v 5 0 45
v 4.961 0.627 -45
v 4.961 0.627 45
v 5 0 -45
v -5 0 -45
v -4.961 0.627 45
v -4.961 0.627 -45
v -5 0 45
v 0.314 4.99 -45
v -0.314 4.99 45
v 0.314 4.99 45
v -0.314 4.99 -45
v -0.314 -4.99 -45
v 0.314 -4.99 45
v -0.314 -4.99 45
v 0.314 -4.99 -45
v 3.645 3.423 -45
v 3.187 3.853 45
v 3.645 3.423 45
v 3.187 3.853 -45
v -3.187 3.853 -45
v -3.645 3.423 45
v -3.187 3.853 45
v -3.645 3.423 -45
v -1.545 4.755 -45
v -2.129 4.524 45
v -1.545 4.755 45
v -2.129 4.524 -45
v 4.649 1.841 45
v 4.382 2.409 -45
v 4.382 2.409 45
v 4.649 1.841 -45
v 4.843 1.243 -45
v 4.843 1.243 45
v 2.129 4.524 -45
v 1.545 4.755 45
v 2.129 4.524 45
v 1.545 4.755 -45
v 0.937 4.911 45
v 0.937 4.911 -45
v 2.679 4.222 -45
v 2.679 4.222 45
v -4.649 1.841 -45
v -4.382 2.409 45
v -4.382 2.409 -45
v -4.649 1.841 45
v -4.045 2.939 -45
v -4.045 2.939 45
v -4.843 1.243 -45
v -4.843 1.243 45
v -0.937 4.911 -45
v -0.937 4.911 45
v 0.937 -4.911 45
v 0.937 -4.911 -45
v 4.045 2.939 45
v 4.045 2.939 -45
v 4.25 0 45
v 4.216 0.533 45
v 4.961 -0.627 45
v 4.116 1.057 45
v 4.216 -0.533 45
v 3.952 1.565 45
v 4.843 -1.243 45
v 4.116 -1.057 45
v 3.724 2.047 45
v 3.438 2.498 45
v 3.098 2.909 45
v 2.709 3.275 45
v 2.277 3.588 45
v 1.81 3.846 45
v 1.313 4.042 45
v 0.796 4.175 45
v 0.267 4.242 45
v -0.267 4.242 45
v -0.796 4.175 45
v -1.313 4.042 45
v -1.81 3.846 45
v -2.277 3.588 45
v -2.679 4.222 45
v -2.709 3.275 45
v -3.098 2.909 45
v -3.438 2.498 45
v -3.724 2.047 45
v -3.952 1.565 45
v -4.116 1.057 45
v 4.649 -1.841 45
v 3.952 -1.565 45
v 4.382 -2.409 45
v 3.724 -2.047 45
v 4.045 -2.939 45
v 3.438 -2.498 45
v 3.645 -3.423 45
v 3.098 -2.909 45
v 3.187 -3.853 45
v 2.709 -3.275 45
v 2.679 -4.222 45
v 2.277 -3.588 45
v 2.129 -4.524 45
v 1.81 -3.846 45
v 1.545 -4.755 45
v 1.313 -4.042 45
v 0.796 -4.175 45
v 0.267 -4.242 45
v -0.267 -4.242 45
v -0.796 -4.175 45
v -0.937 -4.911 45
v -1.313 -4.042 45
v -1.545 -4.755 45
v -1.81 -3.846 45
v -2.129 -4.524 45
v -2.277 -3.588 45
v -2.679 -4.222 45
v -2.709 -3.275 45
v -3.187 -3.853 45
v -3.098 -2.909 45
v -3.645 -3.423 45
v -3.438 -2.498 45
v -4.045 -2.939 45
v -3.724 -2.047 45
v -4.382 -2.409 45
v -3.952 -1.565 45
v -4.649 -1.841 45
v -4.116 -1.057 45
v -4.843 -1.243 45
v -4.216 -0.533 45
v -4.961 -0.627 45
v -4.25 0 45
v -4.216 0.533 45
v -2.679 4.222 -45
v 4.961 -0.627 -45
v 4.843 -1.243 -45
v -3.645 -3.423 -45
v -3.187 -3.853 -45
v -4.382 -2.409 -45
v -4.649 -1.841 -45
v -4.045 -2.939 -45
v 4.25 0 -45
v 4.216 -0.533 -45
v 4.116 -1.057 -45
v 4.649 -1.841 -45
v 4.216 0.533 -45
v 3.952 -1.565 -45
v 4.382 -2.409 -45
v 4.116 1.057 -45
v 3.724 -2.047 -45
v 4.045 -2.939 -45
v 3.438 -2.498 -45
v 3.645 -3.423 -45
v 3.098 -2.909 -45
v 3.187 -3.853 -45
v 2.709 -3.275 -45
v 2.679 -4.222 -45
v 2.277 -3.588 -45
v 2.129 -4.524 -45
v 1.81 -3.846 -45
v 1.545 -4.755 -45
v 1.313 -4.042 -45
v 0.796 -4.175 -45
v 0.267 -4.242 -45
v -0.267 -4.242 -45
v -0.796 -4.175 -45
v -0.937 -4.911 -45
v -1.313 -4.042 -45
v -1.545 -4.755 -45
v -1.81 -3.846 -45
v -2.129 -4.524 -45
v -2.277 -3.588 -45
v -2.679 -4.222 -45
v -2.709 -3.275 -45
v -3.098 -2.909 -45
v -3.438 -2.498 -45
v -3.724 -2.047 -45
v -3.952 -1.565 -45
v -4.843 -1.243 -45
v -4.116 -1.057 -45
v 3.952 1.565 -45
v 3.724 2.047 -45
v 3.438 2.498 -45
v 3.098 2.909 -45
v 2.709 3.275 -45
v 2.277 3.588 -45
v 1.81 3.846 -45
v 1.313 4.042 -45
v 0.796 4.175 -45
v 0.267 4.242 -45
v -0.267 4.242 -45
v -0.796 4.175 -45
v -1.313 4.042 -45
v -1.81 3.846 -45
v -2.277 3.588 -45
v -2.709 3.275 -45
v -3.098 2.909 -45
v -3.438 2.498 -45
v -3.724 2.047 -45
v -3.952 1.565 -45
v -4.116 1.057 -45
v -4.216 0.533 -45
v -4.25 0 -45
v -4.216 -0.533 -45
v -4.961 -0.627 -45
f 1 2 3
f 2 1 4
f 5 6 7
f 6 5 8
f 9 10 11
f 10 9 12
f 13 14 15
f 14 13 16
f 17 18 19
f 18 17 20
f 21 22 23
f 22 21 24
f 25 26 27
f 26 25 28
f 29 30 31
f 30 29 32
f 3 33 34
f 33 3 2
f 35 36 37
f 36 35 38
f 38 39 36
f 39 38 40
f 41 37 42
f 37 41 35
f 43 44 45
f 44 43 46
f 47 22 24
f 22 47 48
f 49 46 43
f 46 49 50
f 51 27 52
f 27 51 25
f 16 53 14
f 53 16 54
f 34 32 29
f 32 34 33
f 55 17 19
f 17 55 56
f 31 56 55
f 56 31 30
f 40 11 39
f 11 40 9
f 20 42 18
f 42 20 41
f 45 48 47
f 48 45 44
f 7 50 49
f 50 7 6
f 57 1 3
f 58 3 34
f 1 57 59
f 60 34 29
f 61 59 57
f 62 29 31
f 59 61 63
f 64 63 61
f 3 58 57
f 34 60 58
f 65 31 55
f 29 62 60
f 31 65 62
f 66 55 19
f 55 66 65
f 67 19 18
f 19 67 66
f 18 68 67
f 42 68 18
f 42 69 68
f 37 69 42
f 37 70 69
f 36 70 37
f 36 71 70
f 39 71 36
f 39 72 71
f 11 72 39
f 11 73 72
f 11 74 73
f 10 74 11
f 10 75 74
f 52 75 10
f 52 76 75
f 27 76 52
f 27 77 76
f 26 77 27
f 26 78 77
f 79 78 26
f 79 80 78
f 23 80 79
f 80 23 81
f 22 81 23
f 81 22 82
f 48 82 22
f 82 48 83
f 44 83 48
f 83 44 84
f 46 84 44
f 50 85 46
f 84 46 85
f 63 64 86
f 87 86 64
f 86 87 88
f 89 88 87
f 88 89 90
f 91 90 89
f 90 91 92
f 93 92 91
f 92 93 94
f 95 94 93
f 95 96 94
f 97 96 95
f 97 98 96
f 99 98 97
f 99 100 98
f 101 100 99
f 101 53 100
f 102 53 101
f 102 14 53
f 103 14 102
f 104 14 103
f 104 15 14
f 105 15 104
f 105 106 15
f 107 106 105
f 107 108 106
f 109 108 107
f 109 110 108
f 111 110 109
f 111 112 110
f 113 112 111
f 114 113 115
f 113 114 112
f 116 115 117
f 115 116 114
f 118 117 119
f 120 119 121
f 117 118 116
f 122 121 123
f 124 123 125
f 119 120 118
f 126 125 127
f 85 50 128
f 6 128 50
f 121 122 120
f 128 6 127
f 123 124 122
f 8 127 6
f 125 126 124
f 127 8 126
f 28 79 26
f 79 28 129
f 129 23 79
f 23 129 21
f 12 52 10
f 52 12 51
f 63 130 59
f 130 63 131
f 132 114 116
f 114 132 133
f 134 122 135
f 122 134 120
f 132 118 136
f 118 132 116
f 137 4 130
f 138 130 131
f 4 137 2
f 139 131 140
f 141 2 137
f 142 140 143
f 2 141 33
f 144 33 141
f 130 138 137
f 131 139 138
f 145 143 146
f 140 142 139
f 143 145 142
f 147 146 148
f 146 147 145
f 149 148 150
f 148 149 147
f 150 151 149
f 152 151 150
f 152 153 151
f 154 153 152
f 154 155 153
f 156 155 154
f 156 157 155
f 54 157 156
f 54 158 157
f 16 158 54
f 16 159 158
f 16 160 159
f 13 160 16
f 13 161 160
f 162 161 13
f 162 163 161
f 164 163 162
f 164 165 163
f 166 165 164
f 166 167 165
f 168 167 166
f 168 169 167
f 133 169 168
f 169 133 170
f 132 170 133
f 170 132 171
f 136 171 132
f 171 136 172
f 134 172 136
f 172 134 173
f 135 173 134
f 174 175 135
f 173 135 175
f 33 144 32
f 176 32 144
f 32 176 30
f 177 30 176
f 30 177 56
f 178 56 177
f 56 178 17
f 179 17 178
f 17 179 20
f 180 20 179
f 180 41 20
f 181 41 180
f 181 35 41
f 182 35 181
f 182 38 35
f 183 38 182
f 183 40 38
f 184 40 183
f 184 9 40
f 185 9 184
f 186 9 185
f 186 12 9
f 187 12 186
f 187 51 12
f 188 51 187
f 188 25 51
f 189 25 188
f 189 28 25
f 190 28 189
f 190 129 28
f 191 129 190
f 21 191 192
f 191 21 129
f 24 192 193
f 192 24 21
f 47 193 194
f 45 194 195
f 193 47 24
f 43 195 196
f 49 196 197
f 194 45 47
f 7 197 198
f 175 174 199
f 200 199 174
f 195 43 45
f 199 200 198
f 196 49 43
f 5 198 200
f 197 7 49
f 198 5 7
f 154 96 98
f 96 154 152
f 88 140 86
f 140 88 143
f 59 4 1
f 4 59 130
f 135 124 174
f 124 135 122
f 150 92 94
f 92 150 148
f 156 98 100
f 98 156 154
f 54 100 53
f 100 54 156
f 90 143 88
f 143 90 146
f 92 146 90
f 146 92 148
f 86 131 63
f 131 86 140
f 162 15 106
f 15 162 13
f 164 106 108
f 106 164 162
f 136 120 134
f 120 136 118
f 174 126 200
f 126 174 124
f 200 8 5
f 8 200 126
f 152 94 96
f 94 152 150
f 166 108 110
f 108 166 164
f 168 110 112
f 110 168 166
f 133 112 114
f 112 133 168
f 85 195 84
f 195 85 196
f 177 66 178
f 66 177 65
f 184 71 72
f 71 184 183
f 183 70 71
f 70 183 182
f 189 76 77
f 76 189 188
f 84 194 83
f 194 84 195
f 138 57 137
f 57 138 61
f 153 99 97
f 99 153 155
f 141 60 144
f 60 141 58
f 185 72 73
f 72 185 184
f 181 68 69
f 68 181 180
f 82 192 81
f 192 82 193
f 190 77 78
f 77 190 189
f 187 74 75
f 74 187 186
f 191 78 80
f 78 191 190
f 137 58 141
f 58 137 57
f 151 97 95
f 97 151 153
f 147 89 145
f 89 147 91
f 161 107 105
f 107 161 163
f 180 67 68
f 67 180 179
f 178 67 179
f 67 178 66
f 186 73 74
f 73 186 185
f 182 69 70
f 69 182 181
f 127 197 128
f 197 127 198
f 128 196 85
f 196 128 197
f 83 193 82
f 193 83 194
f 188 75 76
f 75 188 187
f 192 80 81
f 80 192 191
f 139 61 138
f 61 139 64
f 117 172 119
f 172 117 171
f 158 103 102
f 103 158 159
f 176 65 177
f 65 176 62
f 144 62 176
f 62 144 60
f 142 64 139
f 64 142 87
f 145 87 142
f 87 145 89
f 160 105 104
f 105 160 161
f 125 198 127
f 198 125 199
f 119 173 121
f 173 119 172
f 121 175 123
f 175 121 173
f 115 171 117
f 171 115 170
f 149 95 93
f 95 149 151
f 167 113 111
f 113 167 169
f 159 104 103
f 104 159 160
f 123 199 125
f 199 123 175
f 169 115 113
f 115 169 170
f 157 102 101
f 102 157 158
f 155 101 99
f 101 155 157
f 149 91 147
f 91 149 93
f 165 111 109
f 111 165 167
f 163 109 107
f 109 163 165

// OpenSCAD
$fn = 50;


difference() {
	union() {
		translate(v = [0, 0, -45.0000000000]) {
			cylinder(h = 90, r = 5.0000000000);
		}
	}
	union() {
		translate(v = [0, 0, -100.0000000000]) {
			cylinder(h = 200, r = 4.2500000000);
		}
	}
}
